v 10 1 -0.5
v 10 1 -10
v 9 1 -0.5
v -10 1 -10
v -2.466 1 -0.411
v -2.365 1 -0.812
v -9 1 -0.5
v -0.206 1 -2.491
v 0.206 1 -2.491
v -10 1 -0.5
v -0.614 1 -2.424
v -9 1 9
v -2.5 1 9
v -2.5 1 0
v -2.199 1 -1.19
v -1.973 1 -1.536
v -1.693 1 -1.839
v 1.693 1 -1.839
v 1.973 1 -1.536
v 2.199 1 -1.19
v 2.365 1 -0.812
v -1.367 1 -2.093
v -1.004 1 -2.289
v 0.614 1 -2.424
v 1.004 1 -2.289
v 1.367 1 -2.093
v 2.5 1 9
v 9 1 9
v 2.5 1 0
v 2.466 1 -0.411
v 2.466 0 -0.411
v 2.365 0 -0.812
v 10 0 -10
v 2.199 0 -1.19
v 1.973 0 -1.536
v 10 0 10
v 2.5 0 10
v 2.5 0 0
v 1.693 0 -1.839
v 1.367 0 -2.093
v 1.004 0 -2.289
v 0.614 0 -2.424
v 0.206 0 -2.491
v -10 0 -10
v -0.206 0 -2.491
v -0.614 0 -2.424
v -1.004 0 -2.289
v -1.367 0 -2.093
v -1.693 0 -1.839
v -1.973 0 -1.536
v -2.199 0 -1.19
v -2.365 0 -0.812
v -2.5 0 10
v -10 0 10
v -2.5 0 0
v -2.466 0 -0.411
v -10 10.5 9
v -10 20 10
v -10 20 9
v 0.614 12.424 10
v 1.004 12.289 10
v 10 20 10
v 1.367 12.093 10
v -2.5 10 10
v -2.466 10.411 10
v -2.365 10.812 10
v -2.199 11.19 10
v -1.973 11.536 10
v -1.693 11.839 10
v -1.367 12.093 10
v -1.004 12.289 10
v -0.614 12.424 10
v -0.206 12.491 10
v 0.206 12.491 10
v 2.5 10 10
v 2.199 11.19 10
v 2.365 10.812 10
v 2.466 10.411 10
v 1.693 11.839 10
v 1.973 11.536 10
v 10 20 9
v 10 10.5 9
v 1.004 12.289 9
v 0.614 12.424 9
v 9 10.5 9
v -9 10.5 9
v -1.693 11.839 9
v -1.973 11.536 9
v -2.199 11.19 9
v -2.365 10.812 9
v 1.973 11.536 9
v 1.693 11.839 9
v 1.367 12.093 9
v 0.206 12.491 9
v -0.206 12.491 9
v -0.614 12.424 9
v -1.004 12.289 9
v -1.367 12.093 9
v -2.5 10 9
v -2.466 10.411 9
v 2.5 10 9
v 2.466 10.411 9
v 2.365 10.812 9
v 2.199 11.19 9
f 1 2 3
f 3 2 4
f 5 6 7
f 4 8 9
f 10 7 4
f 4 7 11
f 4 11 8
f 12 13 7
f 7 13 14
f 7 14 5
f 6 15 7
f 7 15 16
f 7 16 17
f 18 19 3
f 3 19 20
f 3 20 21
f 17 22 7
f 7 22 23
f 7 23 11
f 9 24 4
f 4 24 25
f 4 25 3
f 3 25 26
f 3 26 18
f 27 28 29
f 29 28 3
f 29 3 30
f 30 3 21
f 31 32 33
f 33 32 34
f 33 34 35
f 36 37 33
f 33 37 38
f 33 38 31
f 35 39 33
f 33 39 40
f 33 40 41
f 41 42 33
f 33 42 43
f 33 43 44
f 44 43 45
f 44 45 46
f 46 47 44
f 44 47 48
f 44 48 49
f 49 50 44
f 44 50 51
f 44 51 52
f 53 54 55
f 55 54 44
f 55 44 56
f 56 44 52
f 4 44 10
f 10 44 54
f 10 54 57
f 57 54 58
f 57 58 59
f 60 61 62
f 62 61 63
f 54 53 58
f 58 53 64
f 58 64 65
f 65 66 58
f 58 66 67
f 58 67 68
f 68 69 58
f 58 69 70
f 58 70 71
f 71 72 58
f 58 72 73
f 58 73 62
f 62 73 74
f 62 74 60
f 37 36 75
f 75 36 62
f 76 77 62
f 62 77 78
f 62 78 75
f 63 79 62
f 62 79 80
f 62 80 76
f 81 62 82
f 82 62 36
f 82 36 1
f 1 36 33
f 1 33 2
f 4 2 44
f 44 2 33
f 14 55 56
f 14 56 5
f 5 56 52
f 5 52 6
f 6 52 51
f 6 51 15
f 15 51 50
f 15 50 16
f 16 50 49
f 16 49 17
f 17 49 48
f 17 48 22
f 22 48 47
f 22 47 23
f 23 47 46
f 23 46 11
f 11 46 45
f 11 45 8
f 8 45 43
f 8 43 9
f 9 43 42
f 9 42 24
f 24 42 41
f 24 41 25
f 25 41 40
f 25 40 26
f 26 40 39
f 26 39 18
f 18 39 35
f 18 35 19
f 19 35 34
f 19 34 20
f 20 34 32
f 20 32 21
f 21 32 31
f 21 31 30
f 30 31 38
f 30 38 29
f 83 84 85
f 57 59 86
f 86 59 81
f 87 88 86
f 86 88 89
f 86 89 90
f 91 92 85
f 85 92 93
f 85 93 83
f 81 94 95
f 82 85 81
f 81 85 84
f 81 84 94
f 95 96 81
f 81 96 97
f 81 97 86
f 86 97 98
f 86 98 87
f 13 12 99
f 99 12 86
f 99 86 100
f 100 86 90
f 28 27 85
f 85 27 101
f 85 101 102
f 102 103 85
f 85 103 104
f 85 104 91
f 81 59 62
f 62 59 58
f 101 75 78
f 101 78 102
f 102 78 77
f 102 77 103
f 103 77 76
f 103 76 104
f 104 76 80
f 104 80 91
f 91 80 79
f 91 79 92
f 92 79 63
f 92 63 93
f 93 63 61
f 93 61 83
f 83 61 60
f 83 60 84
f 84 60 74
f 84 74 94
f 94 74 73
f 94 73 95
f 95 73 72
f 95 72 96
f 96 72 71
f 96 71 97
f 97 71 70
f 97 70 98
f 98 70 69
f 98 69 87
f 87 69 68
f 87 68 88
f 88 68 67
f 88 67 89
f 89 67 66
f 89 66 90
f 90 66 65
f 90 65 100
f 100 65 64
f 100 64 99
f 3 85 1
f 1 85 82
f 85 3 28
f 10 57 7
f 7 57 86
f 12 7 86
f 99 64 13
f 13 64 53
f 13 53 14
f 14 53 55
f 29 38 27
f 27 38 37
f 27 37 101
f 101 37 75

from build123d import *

# Parameters (mm, degrees)
SKETCH1_W           = 20
SKETCH1_H           = 20
SKETCH1_R           = 2.5
BOSS_EXTRUDE1_DEPTH = 1
SKETCH2_W           = 20
SKETCH2_H           = 20
SKETCH2_R           = 2.5
BOSS_EXTRUDE2_DEPTH = 1
BOSS_EXTRUDE3_DEPTH = 1
BOSS_EXTRUDE4_START = -19
BOSS_EXTRUDE4_DEPTH = 1
SKETCH5_W           = 5
SKETCH5_H           = 9
CUT_EXTRUDE1_DEPTH  = 24.685438565
SKETCH4_W           = 5
SKETCH4_H           = 10
CUT_EXTRUDE2_DEPTH  = 30.342801502


with BuildPart() as part:
    # Sketch1 → Boss-Extrude1 (new body)
    with BuildSketch(Plane(origin=(0, 0, 0), x_dir=(1, 0, 0), z_dir=(0, 1, 0))):
        Rectangle(SKETCH1_W, SKETCH1_H)
        Circle(SKETCH1_R, mode=Mode.SUBTRACT)
    extrude(amount=BOSS_EXTRUDE1_DEPTH)

    # Sketch2 → Boss-Extrude2 (add)
    with BuildSketch(Plane.XY.offset(10)):
        with Locations((0, 10)):
            Rectangle(SKETCH2_W, SKETCH2_H)
        with Locations((0, 10)):
            Circle(SKETCH2_R, mode=Mode.SUBTRACT)
    extrude(amount=-BOSS_EXTRUDE2_DEPTH)

    # Sketch3 → Boss-Extrude3 (add)
    with BuildSketch(Plane(origin=(10, 0, 0), x_dir=(0, 0, -1), z_dir=(1, 0, 0))):
        Polygon((-9, 10.5), (0.5, 1), (-9, 1), align=None)
    extrude(amount=-BOSS_EXTRUDE3_DEPTH)

    # Sketch3<2> → Boss-Extrude4 (add)
    with BuildSketch(Plane(origin=(10, 0, 0), x_dir=(0, 0, -1), z_dir=(1, 0, 0)).offset(BOSS_EXTRUDE4_START)):
        Polygon((-9, 10.5), (0.5, 1), (-9, 1), align=None)
    extrude(amount=-BOSS_EXTRUDE4_DEPTH)

    # Sketch5 → Cut-Extrude1 (cut, through all)
    with BuildSketch(Plane(origin=(0, 1, 0), x_dir=(1, 0, 0), z_dir=(0, 1, 0))):
        with Locations((0, -4.5)):
            Rectangle(SKETCH5_W, SKETCH5_H)
    extrude(amount=-CUT_EXTRUDE1_DEPTH, mode=Mode.SUBTRACT)

    # Sketch4 → Cut-Extrude2 (cut, through all)
    with BuildSketch(Plane(origin=(0, 0, 9), x_dir=(-1, 0, 0), z_dir=(0, 0, -1))):
        with Locations((0, 5)):
            Rectangle(SKETCH4_W, SKETCH4_H)
    extrude(amount=-CUT_EXTRUDE2_DEPTH, mode=Mode.SUBTRACT)


solid = part.part
